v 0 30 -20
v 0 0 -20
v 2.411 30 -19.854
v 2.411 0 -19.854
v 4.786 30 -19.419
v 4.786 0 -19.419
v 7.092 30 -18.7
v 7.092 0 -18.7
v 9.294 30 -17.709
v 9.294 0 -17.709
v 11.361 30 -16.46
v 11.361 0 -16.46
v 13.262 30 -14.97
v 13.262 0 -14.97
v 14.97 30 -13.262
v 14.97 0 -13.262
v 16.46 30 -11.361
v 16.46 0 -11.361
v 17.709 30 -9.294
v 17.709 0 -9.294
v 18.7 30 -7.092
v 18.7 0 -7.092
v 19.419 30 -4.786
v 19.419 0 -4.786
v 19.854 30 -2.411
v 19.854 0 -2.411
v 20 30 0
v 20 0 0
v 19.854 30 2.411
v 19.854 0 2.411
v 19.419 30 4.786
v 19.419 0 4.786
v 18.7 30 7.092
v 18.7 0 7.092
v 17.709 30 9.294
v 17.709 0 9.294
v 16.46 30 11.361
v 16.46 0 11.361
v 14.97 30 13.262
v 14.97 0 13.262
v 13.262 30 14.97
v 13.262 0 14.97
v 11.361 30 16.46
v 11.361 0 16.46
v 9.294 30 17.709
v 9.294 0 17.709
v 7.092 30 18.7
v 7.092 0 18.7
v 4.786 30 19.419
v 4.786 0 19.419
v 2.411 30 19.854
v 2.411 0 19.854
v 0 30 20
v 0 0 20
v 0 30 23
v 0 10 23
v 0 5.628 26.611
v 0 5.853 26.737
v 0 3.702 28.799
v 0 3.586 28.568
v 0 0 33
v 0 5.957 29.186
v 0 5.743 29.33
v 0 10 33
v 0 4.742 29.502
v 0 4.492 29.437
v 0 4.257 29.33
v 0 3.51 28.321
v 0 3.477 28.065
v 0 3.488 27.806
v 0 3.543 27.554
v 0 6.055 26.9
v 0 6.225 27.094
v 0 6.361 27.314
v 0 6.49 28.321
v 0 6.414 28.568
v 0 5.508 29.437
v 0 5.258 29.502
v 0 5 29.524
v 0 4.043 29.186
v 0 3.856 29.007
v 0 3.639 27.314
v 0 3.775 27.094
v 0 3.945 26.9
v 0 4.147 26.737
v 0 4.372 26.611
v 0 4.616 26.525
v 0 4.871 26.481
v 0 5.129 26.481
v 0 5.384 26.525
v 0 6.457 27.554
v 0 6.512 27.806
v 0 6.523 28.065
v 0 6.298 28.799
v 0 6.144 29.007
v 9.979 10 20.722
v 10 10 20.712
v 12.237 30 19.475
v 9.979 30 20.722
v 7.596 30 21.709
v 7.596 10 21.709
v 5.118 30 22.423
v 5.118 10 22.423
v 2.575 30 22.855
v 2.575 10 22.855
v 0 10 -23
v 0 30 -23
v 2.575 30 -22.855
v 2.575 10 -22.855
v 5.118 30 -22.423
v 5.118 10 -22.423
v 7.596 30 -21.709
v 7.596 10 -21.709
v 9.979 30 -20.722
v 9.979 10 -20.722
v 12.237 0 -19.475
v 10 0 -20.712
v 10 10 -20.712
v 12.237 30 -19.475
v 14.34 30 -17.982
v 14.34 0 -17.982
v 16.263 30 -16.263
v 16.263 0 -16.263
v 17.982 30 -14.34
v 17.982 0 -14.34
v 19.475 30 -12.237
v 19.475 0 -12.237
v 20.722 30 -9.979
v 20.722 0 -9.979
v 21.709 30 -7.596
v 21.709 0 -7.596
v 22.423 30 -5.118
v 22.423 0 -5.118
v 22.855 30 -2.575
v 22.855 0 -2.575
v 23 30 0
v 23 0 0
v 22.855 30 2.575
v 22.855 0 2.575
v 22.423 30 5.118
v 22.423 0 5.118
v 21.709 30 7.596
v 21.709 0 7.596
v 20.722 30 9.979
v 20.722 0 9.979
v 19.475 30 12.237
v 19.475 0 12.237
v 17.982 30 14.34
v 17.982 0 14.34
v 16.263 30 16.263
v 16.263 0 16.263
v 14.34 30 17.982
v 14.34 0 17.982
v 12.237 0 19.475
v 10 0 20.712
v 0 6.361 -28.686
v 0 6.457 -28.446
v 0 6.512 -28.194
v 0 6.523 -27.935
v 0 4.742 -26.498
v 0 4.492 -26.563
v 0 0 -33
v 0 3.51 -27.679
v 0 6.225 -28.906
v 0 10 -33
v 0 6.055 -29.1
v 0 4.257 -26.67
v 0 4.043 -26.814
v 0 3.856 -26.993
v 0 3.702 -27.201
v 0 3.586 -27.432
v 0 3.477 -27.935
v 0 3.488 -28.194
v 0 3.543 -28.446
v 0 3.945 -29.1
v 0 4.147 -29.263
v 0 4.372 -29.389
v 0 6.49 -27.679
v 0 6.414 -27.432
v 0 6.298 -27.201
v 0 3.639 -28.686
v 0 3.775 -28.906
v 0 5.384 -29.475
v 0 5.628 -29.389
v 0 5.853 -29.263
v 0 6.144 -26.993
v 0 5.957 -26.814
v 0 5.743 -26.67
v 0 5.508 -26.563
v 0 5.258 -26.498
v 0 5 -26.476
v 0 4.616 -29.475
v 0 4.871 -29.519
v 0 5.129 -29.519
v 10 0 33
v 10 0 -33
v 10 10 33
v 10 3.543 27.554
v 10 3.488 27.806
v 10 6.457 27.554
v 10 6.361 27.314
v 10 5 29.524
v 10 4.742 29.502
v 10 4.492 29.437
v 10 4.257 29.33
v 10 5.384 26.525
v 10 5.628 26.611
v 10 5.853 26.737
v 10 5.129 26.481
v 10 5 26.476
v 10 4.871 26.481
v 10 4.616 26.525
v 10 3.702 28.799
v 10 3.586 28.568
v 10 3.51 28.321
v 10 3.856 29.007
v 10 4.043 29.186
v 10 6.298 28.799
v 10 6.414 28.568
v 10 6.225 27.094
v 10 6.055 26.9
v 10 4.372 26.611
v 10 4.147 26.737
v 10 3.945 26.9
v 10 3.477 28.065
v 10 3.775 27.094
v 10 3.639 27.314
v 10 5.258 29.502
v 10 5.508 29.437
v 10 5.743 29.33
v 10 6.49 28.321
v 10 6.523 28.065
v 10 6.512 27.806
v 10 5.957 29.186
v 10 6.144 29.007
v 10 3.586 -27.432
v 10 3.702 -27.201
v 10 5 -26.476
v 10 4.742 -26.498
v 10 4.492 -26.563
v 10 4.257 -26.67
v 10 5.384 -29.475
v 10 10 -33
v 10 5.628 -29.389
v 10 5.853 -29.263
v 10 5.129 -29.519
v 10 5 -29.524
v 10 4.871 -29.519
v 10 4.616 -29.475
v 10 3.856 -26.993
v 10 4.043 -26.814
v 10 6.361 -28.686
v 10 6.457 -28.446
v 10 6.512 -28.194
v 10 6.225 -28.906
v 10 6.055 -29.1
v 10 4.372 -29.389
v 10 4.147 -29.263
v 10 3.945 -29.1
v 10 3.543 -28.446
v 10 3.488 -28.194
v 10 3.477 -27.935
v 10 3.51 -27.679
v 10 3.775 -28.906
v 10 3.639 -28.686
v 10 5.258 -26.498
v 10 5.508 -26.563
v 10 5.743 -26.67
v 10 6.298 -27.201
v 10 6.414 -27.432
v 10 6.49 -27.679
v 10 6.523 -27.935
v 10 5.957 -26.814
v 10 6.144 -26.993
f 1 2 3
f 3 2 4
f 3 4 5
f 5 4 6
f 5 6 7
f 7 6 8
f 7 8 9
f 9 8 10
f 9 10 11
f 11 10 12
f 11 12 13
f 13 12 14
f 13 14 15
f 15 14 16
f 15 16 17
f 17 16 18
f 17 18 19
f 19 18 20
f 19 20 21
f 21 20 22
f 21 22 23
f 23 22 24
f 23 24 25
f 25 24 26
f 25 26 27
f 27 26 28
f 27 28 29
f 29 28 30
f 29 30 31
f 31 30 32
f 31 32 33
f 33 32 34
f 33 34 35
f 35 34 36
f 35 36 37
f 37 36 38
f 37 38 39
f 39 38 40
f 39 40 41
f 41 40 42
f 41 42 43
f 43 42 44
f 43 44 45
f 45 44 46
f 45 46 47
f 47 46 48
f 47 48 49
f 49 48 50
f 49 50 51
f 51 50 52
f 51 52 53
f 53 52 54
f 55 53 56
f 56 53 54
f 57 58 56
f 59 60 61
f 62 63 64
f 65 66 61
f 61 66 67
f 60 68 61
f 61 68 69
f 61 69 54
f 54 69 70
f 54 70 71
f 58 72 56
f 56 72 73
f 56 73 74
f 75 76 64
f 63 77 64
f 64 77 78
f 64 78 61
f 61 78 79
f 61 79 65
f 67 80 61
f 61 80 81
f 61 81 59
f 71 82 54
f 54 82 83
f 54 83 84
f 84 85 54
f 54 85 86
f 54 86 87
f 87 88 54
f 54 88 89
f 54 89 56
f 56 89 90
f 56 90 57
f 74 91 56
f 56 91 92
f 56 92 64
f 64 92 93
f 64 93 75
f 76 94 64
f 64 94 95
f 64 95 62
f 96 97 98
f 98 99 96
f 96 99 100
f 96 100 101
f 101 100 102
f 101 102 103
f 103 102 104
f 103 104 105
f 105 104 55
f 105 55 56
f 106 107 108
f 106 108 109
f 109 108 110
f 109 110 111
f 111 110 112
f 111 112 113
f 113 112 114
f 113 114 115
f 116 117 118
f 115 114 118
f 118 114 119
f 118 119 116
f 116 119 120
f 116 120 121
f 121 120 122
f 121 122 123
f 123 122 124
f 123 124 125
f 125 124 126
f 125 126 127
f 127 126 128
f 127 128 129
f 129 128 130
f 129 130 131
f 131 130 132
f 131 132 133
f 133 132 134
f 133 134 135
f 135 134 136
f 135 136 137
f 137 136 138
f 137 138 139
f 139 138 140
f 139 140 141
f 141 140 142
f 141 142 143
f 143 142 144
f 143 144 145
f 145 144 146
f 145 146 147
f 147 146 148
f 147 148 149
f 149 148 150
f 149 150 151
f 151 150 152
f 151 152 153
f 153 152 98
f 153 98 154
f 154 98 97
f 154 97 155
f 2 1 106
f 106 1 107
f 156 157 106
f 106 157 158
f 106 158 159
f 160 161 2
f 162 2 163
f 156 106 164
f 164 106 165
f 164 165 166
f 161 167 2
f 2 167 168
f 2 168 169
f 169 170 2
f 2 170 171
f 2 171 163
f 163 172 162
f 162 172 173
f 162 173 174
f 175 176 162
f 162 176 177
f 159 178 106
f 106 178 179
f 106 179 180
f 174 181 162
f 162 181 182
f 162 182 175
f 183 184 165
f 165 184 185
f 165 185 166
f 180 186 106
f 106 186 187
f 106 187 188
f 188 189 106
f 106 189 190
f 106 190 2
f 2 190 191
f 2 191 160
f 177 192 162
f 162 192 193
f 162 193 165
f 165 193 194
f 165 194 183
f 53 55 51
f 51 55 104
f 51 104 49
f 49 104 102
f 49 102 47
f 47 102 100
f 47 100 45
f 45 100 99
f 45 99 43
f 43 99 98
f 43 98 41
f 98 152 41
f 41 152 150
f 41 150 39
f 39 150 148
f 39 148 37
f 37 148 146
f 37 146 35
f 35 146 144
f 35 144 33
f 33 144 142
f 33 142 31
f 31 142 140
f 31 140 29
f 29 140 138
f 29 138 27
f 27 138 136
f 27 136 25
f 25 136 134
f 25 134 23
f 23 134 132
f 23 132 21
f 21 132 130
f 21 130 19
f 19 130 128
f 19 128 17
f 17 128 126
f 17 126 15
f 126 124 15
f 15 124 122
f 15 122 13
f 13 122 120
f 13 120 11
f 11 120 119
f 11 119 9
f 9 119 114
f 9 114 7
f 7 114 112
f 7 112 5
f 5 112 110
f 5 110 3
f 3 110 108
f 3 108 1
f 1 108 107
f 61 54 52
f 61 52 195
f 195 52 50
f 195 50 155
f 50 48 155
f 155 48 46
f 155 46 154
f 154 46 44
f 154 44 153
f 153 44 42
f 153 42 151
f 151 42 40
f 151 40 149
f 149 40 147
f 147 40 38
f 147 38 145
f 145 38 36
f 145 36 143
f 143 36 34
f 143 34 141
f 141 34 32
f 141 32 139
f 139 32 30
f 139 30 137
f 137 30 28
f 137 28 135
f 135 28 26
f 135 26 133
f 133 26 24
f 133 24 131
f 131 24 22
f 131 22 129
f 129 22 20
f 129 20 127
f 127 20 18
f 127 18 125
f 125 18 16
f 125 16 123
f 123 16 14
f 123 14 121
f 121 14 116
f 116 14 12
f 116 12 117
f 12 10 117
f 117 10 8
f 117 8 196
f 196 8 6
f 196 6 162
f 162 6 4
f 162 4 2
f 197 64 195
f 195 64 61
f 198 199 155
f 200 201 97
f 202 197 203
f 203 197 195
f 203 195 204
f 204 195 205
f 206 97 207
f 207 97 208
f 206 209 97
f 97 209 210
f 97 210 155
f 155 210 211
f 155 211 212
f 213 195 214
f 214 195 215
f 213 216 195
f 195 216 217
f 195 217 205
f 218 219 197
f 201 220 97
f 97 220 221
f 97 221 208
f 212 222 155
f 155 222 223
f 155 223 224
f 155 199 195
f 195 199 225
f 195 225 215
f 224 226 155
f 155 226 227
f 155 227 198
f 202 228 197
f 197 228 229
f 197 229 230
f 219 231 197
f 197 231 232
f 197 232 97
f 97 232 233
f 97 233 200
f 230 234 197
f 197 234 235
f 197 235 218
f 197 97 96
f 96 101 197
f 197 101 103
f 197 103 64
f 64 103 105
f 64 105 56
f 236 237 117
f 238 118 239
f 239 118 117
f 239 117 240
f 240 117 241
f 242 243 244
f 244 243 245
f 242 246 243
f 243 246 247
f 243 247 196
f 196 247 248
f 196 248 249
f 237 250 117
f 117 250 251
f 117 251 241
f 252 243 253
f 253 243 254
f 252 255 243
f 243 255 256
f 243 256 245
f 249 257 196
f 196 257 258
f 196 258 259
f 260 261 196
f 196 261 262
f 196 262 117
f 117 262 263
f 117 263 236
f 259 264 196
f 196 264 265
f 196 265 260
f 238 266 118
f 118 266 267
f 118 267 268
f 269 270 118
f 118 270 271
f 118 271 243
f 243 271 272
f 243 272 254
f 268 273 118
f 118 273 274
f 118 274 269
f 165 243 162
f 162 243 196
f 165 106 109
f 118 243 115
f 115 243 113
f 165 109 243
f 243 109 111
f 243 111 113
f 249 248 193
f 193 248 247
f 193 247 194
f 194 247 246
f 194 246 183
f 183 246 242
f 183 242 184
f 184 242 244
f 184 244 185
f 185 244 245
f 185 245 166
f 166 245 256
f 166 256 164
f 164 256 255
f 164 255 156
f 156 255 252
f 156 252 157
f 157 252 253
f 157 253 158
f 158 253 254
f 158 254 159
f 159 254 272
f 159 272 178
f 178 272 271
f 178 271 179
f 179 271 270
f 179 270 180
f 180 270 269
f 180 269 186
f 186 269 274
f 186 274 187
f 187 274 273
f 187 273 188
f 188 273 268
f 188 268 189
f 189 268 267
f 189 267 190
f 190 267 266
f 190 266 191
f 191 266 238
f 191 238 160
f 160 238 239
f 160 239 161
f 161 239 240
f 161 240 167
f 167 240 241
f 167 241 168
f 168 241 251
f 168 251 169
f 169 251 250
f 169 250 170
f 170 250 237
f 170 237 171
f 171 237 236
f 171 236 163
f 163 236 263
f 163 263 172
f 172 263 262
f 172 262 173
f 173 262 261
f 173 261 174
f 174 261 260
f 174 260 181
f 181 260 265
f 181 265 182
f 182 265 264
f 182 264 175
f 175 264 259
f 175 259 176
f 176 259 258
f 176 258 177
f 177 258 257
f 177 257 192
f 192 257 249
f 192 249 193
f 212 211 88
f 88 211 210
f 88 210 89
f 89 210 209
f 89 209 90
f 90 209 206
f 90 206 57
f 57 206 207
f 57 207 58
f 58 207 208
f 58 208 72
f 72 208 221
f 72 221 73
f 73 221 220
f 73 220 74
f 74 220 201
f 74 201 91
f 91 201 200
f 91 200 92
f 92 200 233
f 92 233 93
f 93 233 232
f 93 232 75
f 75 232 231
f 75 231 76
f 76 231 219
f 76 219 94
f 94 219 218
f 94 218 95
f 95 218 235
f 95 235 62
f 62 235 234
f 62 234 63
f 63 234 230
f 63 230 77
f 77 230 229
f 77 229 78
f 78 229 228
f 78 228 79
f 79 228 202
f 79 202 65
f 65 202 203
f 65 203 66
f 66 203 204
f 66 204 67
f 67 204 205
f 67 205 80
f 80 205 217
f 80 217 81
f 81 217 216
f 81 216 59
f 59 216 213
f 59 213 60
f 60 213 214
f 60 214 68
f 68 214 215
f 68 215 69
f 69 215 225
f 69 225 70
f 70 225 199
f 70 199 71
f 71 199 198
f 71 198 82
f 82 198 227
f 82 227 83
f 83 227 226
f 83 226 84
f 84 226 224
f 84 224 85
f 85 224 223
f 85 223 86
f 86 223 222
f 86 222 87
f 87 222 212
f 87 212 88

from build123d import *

# Parameters (mm, degrees)
TUBE_DEPTH         = 30
TERMINALS_DEPTH    = 10
CUT_EXTRUDE1_REACH = 25
SKETCH3_R          = 1.524


with BuildPart() as part:
    # Sketch1 → Tube (new body)
    with BuildSketch(Plane(origin=(0, 0, 0), x_dir=(1, 0, 0), z_dir=(0, 1, 0))):
        with BuildLine():
            Line((0, 23), (0, 20))
            ThreePointArc((0, 20), (20, 0), (0, -20))
            Line((0, -20), (0, -23))
            ThreePointArc((0, -23), (23, 0), (0, 23))
        make_face()
    extrude(amount=TUBE_DEPTH)

    # Sketch2 → Terminals (add)
    with BuildSketch(Plane(origin=(0, 0, 0), x_dir=(-1, 0, 0), z_dir=(0, -1, 0))):
        with BuildLine():
            Line((0, -23), (0, -33))
            Line((0, -33), (-10, -33))
            Line((-10, -33), (-10, -20.712315177))
            ThreePointArc((-10, -20.712315177), (-5.129169081, -22.420785547), (0, -23))
        make_face()
        with BuildLine():
            Line((0, 23), (0, 33))
            Line((0, 33), (-10, 33))
            Line((-10, 33), (-10, 20.712315177))
            ThreePointArc((-10, 20.712315177), (-5.129169081, 22.420785547), (0, 23))
        make_face()
    extrude(amount=-TERMINALS_DEPTH)

    # Sketch3 → Cut-Extrude1 (cut, up to next)
    with BuildSketch(Plane.ZY, mode=Mode.PRIVATE) as cut_extrude1_sk1:
        with Locations((-28, 5)):
            Circle(SKETCH3_R)
    cut_extrude1_tool1 = extrude(cut_extrude1_sk1.sketch, amount=-CUT_EXTRUDE1_REACH, mode=Mode.PRIVATE) & part.part
    add(cut_extrude1_tool1.solids().sort_by_distance((0, 5, -28))[0], mode=Mode.SUBTRACT)
    # Sketch3 → Cut-Extrude1 (cut, up to next)
    with BuildSketch(Plane.ZY, mode=Mode.PRIVATE) as cut_extrude1_sk2:
        with Locations((28, 5)):
            Circle(SKETCH3_R)
    cut_extrude1_tool2 = extrude(cut_extrude1_sk2.sketch, amount=-CUT_EXTRUDE1_REACH, mode=Mode.PRIVATE) & part.part
    add(cut_extrude1_tool2.solids().sort_by_distance((0, 5, 28))[0], mode=Mode.SUBTRACT)


solid = part.part
